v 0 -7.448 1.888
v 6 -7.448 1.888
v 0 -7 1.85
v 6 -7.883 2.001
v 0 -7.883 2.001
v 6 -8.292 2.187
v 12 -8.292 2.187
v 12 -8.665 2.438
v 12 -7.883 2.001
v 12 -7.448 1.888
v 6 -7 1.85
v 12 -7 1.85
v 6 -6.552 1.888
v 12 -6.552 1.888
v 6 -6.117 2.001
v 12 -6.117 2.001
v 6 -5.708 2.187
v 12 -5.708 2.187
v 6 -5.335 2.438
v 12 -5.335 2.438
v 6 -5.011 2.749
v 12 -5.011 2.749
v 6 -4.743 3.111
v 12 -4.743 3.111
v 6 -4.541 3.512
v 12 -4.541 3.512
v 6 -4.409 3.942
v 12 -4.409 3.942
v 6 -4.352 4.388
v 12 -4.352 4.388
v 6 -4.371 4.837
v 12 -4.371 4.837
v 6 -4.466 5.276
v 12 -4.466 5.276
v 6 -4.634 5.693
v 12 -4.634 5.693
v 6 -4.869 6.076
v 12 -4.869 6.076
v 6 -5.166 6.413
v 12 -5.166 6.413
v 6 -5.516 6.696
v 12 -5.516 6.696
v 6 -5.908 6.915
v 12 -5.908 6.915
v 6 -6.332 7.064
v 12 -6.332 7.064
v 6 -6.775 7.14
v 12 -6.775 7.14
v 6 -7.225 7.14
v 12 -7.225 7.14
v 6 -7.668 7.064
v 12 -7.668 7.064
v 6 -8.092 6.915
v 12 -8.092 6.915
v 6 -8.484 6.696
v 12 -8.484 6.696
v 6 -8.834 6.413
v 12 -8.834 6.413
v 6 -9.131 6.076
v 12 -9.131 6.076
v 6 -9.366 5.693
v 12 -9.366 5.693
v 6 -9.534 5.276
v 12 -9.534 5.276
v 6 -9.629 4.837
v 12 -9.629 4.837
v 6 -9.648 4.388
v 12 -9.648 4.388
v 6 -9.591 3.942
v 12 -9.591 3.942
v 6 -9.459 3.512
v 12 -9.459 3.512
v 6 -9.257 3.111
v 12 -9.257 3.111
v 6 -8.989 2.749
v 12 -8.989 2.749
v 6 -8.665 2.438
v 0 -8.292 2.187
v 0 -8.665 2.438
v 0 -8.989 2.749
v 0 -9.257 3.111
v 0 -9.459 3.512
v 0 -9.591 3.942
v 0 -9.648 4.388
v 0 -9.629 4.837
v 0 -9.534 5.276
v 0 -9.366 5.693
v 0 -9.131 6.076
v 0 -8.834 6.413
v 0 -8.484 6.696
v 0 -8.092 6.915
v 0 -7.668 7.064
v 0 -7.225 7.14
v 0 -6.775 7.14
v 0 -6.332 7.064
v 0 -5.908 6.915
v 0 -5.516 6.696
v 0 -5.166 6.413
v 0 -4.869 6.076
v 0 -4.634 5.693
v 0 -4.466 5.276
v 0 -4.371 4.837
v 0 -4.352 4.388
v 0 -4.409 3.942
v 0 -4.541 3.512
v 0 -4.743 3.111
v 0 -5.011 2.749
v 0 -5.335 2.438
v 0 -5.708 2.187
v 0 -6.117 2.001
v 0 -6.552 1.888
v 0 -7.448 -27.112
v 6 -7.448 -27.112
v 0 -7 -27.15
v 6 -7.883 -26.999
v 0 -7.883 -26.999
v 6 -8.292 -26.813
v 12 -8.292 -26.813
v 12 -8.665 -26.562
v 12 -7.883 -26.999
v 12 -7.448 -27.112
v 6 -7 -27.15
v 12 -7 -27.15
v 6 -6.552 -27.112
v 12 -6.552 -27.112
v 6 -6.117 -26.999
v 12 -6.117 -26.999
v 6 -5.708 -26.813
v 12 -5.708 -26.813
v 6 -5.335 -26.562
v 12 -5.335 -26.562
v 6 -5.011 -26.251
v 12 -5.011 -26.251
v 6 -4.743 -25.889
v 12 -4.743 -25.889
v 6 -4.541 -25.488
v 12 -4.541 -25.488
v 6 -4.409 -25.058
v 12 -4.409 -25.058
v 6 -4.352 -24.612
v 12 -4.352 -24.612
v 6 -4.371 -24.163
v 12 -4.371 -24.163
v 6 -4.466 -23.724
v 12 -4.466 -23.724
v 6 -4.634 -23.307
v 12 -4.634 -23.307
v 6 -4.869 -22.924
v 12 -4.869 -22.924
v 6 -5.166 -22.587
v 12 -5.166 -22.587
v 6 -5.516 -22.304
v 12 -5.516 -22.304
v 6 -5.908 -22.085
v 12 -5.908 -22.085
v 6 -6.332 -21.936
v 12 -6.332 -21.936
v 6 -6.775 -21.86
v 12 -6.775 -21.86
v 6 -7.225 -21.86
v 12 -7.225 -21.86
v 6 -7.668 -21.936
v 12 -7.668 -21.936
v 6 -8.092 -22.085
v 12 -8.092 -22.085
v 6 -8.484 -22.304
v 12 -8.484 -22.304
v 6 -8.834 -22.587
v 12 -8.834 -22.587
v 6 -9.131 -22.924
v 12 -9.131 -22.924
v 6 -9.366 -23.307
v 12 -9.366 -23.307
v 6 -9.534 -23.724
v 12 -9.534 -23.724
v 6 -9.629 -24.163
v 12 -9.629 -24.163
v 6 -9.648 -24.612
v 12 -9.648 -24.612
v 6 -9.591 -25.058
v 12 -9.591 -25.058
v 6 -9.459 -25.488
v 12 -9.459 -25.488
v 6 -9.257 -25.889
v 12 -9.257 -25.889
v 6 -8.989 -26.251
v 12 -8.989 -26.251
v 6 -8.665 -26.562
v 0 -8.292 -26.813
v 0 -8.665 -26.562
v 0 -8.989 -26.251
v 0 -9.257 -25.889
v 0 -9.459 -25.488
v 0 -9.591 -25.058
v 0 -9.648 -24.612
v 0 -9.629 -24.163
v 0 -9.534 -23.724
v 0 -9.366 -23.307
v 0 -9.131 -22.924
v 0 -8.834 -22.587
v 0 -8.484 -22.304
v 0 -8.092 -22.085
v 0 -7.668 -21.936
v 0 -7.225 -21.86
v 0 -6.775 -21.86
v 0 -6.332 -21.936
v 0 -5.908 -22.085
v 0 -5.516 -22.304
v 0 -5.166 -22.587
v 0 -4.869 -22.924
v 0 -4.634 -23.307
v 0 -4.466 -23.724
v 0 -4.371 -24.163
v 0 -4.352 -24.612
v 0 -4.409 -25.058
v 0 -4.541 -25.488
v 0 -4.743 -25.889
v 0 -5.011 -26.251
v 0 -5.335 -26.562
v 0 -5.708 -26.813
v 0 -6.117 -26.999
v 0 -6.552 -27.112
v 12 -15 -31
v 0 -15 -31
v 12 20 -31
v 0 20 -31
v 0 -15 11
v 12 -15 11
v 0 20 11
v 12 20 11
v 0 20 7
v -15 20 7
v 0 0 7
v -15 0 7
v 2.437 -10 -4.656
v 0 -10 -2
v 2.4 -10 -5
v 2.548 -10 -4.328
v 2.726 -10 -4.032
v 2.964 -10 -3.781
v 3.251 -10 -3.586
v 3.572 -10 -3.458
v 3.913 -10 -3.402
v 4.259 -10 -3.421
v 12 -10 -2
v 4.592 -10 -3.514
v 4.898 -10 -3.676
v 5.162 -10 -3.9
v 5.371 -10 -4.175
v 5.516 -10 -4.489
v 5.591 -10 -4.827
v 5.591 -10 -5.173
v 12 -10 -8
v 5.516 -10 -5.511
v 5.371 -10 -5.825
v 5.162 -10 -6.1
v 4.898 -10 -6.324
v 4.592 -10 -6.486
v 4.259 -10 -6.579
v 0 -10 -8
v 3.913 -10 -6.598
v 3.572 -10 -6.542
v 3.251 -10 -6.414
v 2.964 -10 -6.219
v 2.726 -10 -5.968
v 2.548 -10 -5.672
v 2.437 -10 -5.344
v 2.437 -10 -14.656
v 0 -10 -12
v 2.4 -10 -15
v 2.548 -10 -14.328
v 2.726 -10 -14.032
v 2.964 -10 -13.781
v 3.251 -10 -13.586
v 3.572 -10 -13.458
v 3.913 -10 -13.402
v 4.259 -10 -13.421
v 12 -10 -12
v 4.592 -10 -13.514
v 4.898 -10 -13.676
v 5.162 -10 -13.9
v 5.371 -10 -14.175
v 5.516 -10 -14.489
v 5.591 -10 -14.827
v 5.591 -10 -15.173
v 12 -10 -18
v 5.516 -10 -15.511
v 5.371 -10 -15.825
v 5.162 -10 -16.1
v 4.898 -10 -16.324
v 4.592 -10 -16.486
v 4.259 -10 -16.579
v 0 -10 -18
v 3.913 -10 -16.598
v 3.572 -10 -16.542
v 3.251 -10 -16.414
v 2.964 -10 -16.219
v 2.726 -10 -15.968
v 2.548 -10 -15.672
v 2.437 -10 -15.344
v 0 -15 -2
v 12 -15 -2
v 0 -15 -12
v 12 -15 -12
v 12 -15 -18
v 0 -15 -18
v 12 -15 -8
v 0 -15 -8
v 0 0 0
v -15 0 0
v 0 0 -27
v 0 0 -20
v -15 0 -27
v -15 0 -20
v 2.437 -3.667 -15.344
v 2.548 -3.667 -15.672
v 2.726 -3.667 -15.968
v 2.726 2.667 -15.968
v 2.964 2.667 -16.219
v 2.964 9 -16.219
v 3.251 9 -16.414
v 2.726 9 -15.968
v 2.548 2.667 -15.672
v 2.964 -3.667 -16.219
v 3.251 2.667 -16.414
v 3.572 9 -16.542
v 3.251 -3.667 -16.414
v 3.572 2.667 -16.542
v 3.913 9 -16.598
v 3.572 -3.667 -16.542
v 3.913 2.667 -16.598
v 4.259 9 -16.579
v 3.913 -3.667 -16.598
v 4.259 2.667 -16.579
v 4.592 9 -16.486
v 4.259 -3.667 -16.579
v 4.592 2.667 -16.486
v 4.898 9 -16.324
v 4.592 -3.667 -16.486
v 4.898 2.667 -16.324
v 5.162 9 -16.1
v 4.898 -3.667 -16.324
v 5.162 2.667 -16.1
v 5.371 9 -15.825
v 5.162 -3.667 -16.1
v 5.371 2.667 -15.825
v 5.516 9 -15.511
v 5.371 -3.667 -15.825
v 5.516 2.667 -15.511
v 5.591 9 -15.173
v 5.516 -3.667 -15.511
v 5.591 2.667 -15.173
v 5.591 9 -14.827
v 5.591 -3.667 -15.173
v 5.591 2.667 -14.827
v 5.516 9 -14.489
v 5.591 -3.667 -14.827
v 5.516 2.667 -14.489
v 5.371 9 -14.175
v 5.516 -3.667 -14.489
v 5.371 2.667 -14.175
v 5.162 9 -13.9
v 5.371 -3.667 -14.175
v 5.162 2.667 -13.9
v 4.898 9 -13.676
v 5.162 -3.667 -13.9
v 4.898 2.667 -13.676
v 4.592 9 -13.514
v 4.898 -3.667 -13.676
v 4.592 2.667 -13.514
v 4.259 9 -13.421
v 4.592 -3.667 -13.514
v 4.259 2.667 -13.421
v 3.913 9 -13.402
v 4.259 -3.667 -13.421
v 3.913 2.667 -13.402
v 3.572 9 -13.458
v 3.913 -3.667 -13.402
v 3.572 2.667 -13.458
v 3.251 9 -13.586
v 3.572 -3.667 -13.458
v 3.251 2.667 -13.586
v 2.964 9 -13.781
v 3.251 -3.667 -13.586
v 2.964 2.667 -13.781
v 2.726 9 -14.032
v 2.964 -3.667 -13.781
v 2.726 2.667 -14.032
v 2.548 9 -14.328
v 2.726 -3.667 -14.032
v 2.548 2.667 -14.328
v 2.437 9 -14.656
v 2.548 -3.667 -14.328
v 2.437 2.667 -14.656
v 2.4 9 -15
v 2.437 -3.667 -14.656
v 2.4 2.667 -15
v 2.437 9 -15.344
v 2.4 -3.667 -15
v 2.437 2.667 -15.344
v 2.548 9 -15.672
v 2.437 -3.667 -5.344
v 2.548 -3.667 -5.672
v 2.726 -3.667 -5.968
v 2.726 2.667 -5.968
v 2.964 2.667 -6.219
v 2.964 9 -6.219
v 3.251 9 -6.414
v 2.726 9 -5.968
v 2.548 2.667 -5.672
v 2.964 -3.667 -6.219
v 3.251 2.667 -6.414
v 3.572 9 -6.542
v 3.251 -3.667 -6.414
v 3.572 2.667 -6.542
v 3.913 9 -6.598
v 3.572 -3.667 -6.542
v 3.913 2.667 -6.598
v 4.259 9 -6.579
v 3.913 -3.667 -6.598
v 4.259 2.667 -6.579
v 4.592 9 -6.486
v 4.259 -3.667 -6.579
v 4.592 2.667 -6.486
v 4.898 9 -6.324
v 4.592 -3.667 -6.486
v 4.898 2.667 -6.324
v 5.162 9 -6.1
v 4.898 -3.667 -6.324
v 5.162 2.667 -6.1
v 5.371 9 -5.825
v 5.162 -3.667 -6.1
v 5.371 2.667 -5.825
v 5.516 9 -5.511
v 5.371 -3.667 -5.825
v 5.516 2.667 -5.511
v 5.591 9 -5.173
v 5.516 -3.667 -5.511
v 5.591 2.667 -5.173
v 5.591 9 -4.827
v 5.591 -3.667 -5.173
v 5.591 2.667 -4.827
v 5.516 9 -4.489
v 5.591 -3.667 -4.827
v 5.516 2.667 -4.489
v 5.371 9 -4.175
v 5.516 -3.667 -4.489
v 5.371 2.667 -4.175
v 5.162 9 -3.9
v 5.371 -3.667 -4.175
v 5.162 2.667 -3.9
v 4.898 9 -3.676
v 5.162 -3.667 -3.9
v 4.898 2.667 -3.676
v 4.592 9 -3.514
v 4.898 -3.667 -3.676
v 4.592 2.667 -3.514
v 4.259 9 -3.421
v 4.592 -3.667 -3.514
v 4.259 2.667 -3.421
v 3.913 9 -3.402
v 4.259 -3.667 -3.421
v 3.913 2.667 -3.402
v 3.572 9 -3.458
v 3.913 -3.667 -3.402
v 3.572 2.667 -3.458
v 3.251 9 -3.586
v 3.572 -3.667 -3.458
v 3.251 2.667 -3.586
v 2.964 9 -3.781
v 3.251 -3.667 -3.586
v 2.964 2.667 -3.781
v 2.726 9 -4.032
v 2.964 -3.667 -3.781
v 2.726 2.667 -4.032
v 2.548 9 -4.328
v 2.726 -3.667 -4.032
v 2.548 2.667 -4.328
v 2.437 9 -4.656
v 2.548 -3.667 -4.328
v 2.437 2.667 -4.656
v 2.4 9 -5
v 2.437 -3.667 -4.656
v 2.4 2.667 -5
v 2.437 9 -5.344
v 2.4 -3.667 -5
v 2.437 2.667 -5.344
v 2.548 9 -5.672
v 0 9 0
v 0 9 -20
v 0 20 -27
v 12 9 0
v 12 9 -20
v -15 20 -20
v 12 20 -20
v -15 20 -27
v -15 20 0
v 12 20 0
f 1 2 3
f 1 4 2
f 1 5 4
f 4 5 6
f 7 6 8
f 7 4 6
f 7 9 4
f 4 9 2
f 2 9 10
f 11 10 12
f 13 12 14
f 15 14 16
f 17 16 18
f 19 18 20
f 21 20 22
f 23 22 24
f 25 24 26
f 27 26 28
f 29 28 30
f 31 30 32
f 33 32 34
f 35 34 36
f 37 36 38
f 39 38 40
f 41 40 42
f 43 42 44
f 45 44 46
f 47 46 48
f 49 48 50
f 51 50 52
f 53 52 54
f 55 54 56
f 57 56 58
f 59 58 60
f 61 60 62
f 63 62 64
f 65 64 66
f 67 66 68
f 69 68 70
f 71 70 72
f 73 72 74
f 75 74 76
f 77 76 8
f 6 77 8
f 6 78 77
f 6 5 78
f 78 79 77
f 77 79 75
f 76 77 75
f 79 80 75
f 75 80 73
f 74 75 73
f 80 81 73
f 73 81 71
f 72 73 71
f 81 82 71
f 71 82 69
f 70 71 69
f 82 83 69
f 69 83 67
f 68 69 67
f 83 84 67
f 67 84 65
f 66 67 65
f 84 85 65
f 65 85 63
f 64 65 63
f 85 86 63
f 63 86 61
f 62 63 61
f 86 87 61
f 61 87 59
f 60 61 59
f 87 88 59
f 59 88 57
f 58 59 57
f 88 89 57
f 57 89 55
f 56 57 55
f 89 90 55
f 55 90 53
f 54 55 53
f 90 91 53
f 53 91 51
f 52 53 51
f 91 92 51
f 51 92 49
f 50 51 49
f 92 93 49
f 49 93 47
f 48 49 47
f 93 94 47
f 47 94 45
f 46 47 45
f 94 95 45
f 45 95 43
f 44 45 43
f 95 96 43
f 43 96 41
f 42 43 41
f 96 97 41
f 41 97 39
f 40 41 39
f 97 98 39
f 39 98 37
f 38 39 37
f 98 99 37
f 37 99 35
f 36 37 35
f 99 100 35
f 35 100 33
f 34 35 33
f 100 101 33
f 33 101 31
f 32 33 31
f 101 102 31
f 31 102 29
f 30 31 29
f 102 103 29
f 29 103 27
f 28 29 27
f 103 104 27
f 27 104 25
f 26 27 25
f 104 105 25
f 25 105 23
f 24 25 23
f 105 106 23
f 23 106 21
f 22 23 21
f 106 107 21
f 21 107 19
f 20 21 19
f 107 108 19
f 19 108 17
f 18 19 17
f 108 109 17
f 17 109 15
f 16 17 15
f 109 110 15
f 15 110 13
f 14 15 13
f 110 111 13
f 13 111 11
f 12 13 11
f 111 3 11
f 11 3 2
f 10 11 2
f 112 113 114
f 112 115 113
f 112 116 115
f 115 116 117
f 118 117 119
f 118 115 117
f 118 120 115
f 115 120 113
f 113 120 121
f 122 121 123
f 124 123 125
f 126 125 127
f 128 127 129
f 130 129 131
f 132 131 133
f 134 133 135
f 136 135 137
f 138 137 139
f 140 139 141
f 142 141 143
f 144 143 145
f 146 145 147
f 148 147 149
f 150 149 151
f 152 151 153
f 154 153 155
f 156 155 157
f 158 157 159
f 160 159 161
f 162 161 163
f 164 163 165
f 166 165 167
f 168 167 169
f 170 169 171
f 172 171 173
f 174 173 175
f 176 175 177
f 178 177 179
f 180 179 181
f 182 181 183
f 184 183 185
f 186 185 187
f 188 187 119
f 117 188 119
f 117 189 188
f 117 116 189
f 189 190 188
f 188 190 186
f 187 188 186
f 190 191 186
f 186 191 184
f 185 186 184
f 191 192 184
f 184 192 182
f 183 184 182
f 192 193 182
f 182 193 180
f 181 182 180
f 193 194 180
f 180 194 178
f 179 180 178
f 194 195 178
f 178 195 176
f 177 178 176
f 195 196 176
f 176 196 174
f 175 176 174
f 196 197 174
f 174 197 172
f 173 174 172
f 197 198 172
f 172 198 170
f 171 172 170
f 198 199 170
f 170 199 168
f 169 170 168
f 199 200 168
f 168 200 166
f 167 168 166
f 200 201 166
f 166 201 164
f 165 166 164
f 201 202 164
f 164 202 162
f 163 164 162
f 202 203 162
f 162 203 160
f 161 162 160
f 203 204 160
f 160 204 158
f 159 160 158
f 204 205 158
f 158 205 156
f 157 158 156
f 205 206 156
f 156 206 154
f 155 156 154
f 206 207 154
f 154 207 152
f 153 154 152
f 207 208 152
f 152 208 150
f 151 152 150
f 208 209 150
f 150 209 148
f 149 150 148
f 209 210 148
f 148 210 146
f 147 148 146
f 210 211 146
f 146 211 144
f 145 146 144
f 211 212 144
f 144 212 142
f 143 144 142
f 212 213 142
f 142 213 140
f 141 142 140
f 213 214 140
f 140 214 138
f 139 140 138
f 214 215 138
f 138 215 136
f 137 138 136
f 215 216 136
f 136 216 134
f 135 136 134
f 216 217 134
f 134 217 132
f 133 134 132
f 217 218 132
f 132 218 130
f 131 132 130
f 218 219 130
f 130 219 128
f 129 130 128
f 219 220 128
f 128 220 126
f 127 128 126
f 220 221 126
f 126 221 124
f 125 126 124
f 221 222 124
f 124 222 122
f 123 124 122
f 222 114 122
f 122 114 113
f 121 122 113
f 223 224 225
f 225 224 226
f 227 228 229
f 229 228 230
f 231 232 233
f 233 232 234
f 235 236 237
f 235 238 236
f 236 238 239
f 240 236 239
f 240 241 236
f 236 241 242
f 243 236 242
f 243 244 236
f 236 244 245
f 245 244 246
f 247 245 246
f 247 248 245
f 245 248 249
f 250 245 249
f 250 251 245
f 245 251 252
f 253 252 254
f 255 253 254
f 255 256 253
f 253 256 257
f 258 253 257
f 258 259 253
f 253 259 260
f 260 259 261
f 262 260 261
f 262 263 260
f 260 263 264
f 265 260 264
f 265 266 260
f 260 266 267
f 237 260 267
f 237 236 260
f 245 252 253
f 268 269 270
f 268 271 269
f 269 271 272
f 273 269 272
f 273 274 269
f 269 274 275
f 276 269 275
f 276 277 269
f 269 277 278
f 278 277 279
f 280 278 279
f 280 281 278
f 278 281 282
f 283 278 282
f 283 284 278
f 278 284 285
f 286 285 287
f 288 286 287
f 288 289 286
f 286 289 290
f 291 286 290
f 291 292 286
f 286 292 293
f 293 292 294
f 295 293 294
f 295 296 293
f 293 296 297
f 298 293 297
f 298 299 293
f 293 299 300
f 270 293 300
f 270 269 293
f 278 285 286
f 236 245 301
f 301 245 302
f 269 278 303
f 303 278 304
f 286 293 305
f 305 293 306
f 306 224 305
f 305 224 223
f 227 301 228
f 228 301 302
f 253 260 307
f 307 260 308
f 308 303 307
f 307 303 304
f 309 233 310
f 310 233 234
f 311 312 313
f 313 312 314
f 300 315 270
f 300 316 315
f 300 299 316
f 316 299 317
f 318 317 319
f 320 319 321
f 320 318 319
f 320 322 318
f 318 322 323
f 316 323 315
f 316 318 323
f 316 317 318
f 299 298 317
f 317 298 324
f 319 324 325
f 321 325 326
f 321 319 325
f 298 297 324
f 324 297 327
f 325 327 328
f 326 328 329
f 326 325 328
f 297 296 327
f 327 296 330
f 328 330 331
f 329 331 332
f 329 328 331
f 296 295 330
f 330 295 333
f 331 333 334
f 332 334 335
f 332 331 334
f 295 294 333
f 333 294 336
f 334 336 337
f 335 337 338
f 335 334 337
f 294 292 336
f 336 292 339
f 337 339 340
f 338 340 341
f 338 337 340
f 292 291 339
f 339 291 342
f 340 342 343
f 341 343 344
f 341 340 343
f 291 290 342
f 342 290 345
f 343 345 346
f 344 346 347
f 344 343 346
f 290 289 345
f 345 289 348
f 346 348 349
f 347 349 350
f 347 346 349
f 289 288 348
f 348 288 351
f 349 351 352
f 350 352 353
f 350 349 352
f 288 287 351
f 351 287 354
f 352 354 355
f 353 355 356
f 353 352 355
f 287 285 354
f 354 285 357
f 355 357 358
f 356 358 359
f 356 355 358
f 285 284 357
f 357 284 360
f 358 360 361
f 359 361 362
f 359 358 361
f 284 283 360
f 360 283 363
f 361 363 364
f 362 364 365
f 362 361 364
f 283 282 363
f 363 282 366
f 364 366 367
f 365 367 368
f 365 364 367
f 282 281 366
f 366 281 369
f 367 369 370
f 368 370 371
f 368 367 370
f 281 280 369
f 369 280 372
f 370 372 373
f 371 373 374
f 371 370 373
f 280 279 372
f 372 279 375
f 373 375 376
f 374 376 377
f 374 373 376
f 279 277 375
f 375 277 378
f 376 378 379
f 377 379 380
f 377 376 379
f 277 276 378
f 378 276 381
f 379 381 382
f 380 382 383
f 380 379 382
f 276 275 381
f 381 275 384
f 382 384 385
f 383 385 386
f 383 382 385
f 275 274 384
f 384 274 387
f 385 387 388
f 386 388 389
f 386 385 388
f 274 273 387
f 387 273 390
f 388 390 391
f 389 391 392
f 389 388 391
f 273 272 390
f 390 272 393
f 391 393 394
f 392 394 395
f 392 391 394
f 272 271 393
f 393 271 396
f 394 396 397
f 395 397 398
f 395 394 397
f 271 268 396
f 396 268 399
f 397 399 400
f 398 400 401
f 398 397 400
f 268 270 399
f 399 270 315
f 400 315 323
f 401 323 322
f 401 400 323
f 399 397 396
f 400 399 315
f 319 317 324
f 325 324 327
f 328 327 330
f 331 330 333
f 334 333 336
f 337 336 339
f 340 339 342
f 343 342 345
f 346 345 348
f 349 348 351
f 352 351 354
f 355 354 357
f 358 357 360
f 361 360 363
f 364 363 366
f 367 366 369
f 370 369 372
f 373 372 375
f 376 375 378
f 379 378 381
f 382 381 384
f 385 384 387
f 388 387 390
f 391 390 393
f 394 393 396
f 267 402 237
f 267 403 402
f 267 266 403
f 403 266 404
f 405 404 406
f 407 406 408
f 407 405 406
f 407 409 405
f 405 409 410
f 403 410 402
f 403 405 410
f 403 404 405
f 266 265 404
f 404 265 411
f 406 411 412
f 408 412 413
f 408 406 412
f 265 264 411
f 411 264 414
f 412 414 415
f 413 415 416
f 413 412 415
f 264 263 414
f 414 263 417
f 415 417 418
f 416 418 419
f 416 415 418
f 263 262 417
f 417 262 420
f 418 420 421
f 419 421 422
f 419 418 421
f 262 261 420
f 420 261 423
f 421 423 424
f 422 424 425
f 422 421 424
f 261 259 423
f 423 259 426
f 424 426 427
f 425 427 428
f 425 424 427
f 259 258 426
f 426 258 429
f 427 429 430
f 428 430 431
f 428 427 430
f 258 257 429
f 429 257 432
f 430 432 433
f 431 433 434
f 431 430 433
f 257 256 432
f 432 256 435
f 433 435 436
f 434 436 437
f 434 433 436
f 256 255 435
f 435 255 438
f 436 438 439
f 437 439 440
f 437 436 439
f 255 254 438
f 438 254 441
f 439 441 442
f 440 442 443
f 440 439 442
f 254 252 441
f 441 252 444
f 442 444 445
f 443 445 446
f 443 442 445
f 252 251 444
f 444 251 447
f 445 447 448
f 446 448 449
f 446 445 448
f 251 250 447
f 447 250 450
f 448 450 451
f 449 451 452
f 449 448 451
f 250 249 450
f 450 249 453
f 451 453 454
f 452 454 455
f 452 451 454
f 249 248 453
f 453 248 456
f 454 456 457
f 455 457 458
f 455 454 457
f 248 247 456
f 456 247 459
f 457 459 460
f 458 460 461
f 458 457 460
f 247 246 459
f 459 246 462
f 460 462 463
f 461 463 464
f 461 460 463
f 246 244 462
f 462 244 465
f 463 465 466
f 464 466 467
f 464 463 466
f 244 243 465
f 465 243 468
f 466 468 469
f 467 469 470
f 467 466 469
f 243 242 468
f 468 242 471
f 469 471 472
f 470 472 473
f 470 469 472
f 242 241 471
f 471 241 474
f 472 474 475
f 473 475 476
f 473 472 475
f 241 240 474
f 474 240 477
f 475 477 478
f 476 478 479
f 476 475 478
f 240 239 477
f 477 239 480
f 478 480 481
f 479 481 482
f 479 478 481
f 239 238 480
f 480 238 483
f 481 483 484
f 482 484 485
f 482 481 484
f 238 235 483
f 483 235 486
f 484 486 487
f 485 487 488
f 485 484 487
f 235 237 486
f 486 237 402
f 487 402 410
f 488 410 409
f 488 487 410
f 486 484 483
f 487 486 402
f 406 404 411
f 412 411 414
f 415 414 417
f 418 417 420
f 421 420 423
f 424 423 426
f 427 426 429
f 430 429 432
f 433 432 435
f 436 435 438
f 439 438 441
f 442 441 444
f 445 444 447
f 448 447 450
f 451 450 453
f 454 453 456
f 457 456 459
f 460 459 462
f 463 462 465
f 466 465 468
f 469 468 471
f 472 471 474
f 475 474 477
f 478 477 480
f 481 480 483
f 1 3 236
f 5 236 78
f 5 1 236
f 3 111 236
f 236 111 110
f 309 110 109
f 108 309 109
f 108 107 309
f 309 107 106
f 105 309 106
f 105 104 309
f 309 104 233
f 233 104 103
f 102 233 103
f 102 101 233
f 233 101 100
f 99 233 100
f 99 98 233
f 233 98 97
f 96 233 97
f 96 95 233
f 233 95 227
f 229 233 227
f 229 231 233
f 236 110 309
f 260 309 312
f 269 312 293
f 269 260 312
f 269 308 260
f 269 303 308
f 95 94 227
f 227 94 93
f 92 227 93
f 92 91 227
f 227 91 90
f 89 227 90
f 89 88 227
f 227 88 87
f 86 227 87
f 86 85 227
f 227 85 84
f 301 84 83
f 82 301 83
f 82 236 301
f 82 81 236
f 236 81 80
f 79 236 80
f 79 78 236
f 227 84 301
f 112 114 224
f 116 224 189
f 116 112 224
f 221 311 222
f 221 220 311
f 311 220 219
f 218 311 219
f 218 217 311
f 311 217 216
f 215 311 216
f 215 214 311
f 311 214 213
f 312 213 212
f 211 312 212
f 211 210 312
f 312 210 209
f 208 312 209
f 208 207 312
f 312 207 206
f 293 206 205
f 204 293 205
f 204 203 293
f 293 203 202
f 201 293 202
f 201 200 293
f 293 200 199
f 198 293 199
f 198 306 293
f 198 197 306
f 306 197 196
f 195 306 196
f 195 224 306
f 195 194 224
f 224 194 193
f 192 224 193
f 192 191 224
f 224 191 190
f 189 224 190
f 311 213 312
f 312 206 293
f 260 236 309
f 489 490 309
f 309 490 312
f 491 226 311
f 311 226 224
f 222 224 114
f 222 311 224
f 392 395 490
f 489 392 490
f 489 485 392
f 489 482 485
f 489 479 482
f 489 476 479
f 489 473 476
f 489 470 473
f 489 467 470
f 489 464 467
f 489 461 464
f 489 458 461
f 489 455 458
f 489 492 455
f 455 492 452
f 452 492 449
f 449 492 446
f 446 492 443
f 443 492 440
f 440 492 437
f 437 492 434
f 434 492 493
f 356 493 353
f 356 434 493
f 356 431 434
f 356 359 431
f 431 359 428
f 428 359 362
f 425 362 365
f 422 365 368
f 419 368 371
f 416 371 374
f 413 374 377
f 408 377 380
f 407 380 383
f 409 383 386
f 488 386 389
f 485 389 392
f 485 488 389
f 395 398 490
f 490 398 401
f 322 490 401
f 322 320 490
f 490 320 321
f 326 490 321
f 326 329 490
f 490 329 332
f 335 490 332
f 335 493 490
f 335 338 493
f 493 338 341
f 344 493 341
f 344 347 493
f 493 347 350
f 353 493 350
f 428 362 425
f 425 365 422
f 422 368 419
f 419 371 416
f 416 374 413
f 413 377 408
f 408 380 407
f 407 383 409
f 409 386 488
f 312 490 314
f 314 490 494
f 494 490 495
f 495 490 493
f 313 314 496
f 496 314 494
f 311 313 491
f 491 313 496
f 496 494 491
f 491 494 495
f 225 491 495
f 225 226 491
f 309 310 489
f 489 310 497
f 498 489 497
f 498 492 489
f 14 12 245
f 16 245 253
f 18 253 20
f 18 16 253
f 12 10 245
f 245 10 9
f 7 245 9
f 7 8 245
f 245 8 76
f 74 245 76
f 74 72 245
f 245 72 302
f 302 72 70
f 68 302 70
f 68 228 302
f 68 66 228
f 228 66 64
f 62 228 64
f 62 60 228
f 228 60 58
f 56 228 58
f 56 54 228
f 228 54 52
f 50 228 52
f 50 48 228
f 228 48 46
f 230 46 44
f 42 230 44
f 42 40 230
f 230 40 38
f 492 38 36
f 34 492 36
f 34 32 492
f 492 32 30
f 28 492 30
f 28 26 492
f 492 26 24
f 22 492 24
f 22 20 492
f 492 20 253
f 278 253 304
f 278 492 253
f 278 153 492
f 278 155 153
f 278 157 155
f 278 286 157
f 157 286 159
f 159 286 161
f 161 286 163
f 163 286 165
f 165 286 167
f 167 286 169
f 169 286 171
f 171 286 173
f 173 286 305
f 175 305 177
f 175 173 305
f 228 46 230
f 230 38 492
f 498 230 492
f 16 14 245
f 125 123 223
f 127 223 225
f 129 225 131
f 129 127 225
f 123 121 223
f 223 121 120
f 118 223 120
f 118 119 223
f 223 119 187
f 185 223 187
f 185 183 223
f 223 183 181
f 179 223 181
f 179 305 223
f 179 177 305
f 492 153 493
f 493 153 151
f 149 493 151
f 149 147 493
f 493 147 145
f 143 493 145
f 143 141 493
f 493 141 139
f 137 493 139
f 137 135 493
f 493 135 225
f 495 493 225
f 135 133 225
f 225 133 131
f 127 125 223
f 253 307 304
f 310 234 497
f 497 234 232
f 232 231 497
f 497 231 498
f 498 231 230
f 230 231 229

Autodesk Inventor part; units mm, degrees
ref_plane "YZ Plane" through (0, 0, 0) normal (1, 0, 0) x (0, 1, 0)
ref_plane "XZ Plane" through (0, 0, 0) normal (0, 1, 0) x (-1, 0, 0)
ref_plane "XY Plane" through (0, 0, 0) normal (0, 0, 1) x (1, 0, 0)
sketch "Sketch1" plane through (0, 0, 0) normal (0, 1, 0) x (-1, 0, 0)
  line L0 (0, 0) -> (0, -20)
  line L1 (0, -20) -> (15, -20)
  line L2 (15, -20) -> (15, -27)
  line L3 (15, -27) -> (0, -27)
  line L4 (0, 0) -> (15, 0)
  line L5 (15, 0) -> (15, 7)
  line L6 (15, 7) -> (0, 7)
  line L7 (-4, -20) -> (0, -20)
  circle A0 centre (-4, -5) radius 1.6
  circle A1 centre (-4, -15) radius 1.6
  line L8 (0, 7) -> (-12, 7)
  line L9 (-12, 7) -> (-12, -27)
  line L10 (-12, -27) -> (0, -27)
  line L11 (0, -20) -> (-12, -20)
  line L12 (-12, 0) -> (-12, 7)
  line L13 (0, 0) -> (-4, 0)
  line L14 (-4, 0) -> (-12, 0)
  line L15 (15, 0) -> (-12, 0)
  line L16 (0, 7) -> (0, 0)
  line L17 (0, -20) -> (0, -27)
  line L18 (-4, -8) -> (-12, -8)
  line L19 (-4, -8) -> (0, -8)
  line L20 (-4, -2) -> (-12, -2)
  line L21 (-4, -2) -> (0, -2)
  line L22 (-4, -18) -> (0, -18)
  line L23 (-4, -18) -> (-12, -18)
  line L24 (-4, -12) -> (-12, -12)
  line L25 (-4, -12) -> (0, -12)
  dimension "d0" = 20
  dimension "d1" = 15
  dimension "d2" = 7
  dimension "d4" = 7
  dimension "d5" = 4
extrude "Extrusion1" add sketch "Sketch1" along normal blind 20 contours L16 L6 L5 L4 | L13 L14 L9 L8 L16 | L17 L10 L9 L11 L7 | L1 L2 L3 L17
extrude "Extrusion2" add sketch "Sketch1" along normal blind 9 contours L0 L21 L20 L9 L14 L13 | L0 L19 L18 L9 L20 L21 | L0 L25 L24 L9 L18 L19 | L0 L22 L23 L9 L24 L25 | L0 L7 L11 L9 L23 L22
extrude "Extrusion3" add sketch "Sketch1" against normal blind 15 contours L0 L21 L20 L9 L14 L13 | L13 L14 L9 L8 L16 | L0 L25 L24 L9 L18 L19 | L0 L7 L11 L9 L23 L22 | L17 L10 L9 L11 L7
extrude "Extrusion4" add sketch "Sketch1" against normal blind 10 contours L0 L19 L18 L9 L20 L21 | L0 L22 L23 L9 L24 L25
sketch "Sketch2" plane through (-15, 20, 7) normal (0, 0, 1) x (1, 0, 0)
  line L0 (15, -20) -> (15, 0)
  line L1 (0, 0) -> (27, 0) projected
  line L2 (15, 0) -> (27, 0)
  line L3 (27, 0) -> (27, -35)
  line L4 (27, -35) -> (15, -35)
  line L5 (15, -35) -> (15, -20)
extrude "Extrusion5" add sketch "Sketch2" along normal blind 4
sketch "Sketch3" plane through (12, 20, -27) normal (0, 0, -1) x (-1, 0, 0)
  line L0 (0, -35) -> (12, -35)
  line L1 (12, -35) -> (12, 0)
  line L2 (12, 0) -> (0, 0)
  line L3 (27, 0) -> (0, 0) projected
  line L4 (0, 0) -> (0, -35)
  line L5 (0, -35) -> (0, 0) projected
  point P0 (12, -20)
extrude "Extrusion6" add sketch "Sketch3" along normal blind 4
sketch "Sketch4" plane through (12, 9, -20) normal (1, 0, 0) x (0, 0, -1)
  line L0 (-31, -24) -> (-18, -24)
  line L1 (-18, -24) -> (-31, -24) projected
  line L2 (-24.5, -24) -> (-24.5, -16)
  line L3 (-2, -24) -> (11, -24)
  line L4 (4.5, -24) -> (4.5, -16)
  circle A0 centre (-24.5, -16) radius 2.65
  circle A1 centre (4.5, -16) radius 2.65
  point P0 (-20, -9)
  dimension "d27" = 8
  dimension "d28" = 8
  dimension "d29" = 5.3
  dimension "d30" = 5.3
extrude "Extrusion7" cut sketch "Sketch4" against normal blind 13
properties part number "servo_clip_holder1"
